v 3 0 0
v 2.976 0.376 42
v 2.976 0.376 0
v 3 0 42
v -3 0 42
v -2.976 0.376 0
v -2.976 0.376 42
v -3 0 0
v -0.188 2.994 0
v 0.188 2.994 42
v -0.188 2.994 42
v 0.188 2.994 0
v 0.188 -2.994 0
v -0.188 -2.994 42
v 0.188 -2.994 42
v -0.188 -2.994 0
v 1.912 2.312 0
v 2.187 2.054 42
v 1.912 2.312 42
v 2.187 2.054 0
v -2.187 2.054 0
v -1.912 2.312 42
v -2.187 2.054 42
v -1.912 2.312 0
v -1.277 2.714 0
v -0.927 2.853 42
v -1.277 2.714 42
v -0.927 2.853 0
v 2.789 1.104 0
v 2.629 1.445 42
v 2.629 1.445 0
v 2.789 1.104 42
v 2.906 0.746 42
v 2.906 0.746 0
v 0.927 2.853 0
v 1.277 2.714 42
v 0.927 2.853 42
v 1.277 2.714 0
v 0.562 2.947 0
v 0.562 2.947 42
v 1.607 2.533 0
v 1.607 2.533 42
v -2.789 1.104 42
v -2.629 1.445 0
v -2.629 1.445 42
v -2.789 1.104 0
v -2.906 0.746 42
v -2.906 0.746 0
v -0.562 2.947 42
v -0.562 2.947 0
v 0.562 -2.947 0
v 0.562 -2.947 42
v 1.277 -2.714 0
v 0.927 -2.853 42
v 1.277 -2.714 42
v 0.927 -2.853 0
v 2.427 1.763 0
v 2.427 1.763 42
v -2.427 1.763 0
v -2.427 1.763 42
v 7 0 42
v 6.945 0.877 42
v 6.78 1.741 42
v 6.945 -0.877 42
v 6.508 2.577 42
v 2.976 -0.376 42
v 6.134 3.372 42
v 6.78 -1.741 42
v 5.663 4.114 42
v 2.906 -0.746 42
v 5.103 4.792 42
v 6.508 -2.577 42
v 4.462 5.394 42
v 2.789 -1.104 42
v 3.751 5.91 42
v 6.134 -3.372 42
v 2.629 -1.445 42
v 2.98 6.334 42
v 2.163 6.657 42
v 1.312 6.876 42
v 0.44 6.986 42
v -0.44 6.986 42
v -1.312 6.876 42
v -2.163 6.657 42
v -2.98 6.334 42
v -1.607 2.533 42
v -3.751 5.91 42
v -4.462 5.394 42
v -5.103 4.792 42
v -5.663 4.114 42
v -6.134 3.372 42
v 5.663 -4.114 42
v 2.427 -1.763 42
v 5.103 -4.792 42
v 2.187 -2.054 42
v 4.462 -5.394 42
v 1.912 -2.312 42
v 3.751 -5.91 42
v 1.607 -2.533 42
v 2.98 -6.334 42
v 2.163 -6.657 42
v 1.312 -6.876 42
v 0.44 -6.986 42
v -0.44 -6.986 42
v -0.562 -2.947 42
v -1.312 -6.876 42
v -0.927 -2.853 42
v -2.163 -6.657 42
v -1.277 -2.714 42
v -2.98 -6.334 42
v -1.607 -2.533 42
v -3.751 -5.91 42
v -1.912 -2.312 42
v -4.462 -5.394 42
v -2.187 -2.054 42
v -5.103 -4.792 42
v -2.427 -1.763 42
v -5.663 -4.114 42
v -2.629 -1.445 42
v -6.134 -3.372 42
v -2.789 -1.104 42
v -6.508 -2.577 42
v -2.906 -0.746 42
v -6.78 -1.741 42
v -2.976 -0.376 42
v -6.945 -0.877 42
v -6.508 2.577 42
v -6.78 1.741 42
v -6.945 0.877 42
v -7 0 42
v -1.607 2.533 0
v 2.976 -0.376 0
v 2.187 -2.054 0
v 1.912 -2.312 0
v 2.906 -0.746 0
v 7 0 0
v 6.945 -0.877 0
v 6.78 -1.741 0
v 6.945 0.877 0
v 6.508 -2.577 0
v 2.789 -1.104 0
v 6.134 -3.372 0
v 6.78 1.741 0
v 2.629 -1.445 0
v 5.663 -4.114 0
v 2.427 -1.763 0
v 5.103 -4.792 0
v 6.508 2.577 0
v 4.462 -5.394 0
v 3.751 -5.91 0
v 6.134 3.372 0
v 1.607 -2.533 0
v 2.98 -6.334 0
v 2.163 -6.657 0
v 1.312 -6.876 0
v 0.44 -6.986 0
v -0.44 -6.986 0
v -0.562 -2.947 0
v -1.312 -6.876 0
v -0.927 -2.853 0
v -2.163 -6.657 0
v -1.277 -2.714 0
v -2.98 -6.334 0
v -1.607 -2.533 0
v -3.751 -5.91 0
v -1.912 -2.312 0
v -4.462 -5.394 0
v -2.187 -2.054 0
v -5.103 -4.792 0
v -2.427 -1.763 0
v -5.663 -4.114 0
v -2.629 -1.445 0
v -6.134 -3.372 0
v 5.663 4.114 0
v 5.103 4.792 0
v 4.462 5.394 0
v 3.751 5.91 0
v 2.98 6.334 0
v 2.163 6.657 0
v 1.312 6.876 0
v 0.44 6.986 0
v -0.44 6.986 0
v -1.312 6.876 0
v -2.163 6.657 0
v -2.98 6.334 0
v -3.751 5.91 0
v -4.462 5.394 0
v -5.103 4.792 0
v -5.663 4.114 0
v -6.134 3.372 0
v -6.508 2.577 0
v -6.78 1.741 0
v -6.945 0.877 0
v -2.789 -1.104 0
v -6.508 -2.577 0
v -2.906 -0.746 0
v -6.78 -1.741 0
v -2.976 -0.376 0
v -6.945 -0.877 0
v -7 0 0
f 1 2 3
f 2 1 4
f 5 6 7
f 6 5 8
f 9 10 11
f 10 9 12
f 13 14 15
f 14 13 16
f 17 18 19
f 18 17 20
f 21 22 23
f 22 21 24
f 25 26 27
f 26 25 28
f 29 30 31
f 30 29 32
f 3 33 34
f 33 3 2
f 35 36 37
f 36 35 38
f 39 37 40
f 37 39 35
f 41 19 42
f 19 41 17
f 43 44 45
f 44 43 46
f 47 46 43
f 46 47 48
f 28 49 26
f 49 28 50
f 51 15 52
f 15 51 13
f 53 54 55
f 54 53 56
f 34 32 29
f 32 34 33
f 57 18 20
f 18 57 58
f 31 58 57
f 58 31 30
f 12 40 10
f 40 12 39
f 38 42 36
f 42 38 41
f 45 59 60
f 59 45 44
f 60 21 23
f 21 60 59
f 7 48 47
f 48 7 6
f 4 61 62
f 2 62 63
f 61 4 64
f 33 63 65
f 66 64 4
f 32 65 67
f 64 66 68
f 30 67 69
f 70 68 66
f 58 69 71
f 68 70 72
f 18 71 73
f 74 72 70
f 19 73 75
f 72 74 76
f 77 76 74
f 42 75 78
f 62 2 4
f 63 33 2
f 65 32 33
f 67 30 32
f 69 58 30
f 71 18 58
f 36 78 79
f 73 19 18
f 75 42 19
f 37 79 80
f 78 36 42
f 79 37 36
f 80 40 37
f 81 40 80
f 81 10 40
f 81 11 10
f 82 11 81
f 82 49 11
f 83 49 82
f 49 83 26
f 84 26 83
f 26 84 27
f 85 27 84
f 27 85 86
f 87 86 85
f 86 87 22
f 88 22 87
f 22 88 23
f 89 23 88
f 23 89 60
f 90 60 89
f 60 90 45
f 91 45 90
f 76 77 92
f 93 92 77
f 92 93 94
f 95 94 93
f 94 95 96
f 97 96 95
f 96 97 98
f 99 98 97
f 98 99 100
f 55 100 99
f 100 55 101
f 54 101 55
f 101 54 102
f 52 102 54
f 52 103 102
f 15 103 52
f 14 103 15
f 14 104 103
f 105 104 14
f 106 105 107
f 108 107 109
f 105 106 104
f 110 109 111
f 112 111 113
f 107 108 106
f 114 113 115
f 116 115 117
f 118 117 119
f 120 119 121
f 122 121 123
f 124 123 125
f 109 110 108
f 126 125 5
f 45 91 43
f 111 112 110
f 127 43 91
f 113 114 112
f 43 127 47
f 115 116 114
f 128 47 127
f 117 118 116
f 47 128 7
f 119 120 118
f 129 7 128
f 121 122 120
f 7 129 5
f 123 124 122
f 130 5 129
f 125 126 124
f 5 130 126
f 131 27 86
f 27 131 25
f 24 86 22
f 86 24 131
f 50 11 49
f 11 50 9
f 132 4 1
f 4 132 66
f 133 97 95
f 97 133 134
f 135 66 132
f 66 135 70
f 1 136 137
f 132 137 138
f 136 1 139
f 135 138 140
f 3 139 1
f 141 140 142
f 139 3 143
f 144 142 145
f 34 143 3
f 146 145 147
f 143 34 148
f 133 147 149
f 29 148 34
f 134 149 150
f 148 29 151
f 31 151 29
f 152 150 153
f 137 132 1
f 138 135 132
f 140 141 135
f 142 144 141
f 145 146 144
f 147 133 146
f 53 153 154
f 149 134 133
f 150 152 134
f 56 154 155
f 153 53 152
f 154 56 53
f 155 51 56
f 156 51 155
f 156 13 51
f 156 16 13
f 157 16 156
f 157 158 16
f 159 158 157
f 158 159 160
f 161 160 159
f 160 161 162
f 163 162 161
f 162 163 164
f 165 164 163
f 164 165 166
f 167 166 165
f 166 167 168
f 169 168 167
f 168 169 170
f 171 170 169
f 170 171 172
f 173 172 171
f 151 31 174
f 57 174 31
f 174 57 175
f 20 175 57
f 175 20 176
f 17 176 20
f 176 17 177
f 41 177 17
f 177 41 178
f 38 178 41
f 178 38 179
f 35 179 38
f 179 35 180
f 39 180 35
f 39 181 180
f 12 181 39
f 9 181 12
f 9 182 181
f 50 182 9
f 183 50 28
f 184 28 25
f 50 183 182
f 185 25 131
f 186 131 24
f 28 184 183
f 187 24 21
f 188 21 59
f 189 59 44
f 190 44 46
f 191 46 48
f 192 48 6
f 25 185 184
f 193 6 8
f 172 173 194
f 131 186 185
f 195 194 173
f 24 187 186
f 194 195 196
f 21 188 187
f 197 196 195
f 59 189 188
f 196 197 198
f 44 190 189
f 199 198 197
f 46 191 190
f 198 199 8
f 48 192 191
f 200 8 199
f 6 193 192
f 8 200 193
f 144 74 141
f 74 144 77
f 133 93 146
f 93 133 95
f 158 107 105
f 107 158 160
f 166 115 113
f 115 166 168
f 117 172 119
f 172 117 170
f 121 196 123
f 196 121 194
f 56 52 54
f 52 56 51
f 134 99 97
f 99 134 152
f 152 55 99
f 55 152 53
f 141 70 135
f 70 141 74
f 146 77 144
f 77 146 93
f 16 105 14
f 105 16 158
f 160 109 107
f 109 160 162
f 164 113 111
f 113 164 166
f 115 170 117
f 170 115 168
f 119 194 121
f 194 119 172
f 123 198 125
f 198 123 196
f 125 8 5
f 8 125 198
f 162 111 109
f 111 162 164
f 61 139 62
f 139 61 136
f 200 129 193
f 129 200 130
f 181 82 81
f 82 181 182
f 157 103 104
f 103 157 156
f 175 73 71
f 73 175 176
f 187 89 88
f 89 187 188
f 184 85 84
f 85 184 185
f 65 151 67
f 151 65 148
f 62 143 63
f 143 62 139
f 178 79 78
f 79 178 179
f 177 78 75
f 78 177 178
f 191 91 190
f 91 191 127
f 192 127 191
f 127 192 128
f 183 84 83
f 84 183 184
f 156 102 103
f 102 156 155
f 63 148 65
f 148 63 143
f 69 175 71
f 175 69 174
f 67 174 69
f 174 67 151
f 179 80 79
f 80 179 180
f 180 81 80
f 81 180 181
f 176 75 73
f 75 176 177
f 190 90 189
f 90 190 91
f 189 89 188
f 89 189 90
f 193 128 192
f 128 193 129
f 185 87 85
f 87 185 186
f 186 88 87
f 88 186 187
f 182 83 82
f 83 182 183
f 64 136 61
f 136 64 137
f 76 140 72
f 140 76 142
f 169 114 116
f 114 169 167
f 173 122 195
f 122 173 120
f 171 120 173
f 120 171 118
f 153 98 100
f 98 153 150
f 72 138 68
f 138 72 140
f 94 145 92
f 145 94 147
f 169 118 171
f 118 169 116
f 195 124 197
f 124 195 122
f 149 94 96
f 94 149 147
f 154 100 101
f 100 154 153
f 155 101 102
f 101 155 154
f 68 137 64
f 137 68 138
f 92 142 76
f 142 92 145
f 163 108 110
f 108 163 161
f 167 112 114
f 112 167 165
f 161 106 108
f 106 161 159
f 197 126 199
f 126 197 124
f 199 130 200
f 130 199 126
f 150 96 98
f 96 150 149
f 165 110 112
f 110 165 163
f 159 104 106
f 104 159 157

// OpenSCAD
$fn = 50;


difference() {
	union() {
		cylinder(h = 42, r = 7.0000000000);
	}
	union() {
		cylinder(h = 42, r = 3.0000000000);
		cylinder(h = 42, r = 1.5000000000);
		cylinder(h = 42, r = 1.5000000000);
		cylinder(h = 42, r = 1.5000000000);
	}
}
